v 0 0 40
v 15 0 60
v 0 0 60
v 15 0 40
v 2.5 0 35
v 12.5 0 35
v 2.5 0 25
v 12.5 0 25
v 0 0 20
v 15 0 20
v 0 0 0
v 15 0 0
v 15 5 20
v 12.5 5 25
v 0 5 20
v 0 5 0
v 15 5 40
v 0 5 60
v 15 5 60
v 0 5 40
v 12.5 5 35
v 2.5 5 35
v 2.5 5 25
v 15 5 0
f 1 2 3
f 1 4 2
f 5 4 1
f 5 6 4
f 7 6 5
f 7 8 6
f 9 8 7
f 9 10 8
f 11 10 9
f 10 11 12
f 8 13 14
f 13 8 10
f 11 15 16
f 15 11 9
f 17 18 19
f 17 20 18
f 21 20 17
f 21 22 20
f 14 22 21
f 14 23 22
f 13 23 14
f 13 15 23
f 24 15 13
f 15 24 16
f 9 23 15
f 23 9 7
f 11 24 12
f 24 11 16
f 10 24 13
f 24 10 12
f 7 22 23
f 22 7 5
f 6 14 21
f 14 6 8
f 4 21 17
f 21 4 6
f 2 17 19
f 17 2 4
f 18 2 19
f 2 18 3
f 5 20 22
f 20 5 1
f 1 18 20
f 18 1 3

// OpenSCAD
union() {
    hull() {
        cube([15,5,20]);

        translate([5/2,0,0])
        cube([10,5,25]);
    }

    translate([5/2,0,0])
    cube([10,5,50]);

    translate([0,0,40])
    hull() {
        cube([15,5,20]);

        translate([5/2,0,-5])
        cube([10,5,25]);
    }
}
